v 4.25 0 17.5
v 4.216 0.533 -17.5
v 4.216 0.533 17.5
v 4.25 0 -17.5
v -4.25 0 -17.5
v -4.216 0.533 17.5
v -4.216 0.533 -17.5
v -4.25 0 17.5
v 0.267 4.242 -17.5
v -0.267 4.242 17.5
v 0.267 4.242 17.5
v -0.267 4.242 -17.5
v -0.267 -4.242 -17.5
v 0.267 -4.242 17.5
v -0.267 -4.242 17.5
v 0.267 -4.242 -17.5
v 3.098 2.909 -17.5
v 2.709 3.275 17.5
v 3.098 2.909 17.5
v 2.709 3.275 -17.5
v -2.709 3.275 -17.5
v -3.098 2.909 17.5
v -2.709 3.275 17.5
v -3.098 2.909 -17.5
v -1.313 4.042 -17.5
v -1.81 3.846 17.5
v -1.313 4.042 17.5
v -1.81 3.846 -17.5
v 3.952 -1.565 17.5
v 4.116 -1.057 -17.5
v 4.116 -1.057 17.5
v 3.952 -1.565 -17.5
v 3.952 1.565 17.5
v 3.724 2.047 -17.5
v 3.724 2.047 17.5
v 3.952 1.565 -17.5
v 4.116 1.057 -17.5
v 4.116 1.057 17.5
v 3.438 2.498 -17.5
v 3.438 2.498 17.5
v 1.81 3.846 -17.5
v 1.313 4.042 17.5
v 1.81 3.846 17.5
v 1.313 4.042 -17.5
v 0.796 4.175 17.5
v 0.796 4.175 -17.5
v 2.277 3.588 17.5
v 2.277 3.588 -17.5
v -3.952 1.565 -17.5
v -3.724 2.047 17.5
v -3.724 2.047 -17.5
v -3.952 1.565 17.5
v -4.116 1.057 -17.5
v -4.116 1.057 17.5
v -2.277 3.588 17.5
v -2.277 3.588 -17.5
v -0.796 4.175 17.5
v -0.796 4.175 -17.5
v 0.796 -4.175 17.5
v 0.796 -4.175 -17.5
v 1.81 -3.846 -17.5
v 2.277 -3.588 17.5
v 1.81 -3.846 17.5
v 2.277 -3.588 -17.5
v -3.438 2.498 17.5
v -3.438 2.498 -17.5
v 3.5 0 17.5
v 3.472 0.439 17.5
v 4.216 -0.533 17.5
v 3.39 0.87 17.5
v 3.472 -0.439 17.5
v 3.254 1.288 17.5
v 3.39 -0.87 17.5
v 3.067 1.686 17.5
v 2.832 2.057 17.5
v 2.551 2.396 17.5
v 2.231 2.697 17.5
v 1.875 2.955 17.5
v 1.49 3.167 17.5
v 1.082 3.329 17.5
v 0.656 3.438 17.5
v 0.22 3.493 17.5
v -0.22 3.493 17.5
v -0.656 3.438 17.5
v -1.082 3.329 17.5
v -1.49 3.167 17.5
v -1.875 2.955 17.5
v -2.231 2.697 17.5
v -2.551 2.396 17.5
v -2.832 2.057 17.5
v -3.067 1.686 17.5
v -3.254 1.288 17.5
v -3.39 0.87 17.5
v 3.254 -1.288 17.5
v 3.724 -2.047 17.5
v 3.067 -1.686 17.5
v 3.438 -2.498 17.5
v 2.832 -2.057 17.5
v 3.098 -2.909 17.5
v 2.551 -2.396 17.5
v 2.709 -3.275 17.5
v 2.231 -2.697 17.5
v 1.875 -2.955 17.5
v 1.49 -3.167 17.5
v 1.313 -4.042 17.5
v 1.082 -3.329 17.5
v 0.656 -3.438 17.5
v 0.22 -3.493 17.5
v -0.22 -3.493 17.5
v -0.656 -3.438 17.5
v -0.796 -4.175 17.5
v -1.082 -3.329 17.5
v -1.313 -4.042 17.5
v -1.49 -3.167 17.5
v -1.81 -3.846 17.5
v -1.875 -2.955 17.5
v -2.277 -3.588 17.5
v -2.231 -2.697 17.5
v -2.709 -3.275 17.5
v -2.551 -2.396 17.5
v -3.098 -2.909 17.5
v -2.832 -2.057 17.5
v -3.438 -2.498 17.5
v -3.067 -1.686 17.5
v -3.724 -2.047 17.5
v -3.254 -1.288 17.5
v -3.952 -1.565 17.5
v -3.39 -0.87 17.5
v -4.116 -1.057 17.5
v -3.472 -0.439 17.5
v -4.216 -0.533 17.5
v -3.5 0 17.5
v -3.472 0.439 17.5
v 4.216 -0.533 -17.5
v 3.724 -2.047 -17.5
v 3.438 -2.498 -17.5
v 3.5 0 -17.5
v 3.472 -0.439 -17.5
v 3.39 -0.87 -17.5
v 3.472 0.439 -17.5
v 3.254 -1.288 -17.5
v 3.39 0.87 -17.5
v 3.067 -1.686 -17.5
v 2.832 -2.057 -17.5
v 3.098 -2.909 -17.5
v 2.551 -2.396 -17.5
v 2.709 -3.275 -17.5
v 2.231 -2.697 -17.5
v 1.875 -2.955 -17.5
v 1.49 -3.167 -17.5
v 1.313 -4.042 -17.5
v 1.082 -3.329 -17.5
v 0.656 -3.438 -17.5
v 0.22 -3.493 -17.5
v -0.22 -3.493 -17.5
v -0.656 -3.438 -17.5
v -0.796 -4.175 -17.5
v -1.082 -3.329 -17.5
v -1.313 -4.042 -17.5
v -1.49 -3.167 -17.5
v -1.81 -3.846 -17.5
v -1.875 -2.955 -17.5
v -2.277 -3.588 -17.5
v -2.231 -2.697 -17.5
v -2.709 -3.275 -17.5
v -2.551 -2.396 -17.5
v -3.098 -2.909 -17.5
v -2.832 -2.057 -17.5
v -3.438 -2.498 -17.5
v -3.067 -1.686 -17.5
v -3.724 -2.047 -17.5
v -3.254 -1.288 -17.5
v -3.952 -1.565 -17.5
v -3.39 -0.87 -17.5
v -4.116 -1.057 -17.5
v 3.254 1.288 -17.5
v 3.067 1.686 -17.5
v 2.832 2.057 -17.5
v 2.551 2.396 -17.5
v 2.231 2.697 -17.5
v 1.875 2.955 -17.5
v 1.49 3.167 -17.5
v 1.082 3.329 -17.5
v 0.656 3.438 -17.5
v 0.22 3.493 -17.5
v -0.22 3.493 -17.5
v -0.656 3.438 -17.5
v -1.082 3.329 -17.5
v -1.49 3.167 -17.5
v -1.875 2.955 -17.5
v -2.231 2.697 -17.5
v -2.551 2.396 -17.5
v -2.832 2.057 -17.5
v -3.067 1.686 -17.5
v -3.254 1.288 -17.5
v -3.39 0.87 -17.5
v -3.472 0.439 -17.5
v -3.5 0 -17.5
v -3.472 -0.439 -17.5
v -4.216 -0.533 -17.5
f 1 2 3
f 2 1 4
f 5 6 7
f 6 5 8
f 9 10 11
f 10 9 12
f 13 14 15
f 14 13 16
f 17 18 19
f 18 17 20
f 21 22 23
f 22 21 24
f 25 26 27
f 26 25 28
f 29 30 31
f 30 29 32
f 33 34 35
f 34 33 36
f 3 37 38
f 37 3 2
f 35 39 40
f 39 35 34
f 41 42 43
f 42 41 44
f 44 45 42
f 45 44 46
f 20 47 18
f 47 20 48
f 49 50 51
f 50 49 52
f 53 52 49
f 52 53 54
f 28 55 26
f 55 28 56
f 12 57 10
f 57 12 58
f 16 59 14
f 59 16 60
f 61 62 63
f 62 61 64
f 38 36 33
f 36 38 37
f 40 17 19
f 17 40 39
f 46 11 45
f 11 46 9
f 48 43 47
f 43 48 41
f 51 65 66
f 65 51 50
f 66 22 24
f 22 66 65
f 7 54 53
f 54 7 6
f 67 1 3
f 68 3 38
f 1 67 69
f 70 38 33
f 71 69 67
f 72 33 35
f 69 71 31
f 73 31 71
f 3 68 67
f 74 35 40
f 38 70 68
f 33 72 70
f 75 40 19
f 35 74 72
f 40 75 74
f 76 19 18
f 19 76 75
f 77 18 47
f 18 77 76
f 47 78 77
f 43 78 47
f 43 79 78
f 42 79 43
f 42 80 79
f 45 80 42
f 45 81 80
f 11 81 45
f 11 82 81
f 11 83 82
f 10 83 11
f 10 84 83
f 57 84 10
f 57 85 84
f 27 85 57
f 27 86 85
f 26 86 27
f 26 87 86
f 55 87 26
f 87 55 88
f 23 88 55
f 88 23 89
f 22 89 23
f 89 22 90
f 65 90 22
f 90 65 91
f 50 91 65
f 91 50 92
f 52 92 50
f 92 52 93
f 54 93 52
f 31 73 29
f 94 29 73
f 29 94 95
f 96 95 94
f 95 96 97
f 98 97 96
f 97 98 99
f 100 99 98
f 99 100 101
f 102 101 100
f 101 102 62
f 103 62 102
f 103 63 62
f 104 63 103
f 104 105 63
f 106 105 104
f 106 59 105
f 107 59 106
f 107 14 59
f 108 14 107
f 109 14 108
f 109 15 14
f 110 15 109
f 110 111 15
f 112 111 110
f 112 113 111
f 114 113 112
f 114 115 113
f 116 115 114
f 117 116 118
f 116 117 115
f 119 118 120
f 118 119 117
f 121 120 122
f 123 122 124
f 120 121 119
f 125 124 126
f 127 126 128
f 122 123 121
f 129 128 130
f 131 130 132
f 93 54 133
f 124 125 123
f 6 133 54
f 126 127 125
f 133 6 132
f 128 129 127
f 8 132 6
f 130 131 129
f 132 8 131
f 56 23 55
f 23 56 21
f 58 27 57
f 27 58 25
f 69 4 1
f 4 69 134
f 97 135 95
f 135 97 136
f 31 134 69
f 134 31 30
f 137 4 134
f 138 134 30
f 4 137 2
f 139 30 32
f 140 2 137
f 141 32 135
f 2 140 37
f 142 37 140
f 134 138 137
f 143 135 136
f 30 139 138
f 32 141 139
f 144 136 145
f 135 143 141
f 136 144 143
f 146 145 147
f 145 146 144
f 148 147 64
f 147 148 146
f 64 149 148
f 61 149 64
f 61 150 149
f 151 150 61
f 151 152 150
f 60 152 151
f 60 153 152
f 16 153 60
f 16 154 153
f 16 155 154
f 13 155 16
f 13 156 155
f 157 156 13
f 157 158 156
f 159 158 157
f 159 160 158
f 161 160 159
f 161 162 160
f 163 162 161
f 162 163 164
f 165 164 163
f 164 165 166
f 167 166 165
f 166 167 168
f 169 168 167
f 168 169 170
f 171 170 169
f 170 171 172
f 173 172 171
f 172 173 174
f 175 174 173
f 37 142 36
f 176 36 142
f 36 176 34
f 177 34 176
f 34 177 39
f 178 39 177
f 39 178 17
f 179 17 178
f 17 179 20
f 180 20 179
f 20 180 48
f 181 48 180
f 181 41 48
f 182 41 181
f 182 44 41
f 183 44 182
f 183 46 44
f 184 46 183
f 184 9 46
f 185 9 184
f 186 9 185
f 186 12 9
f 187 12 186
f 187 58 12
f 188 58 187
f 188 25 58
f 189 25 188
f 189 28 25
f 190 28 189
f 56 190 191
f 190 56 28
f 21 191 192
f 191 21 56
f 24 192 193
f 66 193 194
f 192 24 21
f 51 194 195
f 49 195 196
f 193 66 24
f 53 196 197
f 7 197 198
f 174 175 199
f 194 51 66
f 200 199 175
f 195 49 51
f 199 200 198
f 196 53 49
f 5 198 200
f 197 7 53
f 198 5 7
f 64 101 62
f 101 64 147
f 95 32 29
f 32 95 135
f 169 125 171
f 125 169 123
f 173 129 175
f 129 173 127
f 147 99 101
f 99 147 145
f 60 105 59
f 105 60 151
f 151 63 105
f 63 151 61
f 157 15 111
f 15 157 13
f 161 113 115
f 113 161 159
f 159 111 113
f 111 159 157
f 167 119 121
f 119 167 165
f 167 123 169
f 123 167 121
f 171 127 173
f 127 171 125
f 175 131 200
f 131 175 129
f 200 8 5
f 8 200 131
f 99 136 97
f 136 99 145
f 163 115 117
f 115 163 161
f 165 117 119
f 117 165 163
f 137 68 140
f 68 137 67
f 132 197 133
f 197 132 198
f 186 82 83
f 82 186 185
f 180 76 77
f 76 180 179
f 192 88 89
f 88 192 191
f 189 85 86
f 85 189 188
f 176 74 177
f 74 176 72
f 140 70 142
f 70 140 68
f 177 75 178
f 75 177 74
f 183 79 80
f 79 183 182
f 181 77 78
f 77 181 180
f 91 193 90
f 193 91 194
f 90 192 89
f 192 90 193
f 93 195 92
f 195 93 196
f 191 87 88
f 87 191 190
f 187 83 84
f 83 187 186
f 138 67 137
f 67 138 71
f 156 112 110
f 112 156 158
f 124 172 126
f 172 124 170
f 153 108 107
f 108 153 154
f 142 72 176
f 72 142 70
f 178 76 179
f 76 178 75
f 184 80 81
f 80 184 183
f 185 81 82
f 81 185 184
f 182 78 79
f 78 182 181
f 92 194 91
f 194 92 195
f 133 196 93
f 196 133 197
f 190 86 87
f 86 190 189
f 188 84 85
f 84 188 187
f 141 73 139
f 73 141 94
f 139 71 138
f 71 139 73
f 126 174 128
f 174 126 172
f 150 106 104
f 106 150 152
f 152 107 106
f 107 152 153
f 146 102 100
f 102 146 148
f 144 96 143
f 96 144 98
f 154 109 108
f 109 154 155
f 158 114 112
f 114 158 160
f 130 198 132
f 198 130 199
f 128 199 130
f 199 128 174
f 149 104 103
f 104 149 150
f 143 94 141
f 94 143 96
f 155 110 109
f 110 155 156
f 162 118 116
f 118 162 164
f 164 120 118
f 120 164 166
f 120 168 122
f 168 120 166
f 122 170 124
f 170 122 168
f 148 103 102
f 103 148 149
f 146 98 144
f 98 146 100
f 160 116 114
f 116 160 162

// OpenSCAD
$fn = 50;


difference() {
	union() {
		translate(v = [0, 0, -17.5000000000]) {
			cylinder(h = 35, r = 4.2500000000);
		}
	}
	union() {
		translate(v = [0, 0, -100.0000000000]) {
			cylinder(h = 200, r = 3.5000000000);
		}
	}
}
